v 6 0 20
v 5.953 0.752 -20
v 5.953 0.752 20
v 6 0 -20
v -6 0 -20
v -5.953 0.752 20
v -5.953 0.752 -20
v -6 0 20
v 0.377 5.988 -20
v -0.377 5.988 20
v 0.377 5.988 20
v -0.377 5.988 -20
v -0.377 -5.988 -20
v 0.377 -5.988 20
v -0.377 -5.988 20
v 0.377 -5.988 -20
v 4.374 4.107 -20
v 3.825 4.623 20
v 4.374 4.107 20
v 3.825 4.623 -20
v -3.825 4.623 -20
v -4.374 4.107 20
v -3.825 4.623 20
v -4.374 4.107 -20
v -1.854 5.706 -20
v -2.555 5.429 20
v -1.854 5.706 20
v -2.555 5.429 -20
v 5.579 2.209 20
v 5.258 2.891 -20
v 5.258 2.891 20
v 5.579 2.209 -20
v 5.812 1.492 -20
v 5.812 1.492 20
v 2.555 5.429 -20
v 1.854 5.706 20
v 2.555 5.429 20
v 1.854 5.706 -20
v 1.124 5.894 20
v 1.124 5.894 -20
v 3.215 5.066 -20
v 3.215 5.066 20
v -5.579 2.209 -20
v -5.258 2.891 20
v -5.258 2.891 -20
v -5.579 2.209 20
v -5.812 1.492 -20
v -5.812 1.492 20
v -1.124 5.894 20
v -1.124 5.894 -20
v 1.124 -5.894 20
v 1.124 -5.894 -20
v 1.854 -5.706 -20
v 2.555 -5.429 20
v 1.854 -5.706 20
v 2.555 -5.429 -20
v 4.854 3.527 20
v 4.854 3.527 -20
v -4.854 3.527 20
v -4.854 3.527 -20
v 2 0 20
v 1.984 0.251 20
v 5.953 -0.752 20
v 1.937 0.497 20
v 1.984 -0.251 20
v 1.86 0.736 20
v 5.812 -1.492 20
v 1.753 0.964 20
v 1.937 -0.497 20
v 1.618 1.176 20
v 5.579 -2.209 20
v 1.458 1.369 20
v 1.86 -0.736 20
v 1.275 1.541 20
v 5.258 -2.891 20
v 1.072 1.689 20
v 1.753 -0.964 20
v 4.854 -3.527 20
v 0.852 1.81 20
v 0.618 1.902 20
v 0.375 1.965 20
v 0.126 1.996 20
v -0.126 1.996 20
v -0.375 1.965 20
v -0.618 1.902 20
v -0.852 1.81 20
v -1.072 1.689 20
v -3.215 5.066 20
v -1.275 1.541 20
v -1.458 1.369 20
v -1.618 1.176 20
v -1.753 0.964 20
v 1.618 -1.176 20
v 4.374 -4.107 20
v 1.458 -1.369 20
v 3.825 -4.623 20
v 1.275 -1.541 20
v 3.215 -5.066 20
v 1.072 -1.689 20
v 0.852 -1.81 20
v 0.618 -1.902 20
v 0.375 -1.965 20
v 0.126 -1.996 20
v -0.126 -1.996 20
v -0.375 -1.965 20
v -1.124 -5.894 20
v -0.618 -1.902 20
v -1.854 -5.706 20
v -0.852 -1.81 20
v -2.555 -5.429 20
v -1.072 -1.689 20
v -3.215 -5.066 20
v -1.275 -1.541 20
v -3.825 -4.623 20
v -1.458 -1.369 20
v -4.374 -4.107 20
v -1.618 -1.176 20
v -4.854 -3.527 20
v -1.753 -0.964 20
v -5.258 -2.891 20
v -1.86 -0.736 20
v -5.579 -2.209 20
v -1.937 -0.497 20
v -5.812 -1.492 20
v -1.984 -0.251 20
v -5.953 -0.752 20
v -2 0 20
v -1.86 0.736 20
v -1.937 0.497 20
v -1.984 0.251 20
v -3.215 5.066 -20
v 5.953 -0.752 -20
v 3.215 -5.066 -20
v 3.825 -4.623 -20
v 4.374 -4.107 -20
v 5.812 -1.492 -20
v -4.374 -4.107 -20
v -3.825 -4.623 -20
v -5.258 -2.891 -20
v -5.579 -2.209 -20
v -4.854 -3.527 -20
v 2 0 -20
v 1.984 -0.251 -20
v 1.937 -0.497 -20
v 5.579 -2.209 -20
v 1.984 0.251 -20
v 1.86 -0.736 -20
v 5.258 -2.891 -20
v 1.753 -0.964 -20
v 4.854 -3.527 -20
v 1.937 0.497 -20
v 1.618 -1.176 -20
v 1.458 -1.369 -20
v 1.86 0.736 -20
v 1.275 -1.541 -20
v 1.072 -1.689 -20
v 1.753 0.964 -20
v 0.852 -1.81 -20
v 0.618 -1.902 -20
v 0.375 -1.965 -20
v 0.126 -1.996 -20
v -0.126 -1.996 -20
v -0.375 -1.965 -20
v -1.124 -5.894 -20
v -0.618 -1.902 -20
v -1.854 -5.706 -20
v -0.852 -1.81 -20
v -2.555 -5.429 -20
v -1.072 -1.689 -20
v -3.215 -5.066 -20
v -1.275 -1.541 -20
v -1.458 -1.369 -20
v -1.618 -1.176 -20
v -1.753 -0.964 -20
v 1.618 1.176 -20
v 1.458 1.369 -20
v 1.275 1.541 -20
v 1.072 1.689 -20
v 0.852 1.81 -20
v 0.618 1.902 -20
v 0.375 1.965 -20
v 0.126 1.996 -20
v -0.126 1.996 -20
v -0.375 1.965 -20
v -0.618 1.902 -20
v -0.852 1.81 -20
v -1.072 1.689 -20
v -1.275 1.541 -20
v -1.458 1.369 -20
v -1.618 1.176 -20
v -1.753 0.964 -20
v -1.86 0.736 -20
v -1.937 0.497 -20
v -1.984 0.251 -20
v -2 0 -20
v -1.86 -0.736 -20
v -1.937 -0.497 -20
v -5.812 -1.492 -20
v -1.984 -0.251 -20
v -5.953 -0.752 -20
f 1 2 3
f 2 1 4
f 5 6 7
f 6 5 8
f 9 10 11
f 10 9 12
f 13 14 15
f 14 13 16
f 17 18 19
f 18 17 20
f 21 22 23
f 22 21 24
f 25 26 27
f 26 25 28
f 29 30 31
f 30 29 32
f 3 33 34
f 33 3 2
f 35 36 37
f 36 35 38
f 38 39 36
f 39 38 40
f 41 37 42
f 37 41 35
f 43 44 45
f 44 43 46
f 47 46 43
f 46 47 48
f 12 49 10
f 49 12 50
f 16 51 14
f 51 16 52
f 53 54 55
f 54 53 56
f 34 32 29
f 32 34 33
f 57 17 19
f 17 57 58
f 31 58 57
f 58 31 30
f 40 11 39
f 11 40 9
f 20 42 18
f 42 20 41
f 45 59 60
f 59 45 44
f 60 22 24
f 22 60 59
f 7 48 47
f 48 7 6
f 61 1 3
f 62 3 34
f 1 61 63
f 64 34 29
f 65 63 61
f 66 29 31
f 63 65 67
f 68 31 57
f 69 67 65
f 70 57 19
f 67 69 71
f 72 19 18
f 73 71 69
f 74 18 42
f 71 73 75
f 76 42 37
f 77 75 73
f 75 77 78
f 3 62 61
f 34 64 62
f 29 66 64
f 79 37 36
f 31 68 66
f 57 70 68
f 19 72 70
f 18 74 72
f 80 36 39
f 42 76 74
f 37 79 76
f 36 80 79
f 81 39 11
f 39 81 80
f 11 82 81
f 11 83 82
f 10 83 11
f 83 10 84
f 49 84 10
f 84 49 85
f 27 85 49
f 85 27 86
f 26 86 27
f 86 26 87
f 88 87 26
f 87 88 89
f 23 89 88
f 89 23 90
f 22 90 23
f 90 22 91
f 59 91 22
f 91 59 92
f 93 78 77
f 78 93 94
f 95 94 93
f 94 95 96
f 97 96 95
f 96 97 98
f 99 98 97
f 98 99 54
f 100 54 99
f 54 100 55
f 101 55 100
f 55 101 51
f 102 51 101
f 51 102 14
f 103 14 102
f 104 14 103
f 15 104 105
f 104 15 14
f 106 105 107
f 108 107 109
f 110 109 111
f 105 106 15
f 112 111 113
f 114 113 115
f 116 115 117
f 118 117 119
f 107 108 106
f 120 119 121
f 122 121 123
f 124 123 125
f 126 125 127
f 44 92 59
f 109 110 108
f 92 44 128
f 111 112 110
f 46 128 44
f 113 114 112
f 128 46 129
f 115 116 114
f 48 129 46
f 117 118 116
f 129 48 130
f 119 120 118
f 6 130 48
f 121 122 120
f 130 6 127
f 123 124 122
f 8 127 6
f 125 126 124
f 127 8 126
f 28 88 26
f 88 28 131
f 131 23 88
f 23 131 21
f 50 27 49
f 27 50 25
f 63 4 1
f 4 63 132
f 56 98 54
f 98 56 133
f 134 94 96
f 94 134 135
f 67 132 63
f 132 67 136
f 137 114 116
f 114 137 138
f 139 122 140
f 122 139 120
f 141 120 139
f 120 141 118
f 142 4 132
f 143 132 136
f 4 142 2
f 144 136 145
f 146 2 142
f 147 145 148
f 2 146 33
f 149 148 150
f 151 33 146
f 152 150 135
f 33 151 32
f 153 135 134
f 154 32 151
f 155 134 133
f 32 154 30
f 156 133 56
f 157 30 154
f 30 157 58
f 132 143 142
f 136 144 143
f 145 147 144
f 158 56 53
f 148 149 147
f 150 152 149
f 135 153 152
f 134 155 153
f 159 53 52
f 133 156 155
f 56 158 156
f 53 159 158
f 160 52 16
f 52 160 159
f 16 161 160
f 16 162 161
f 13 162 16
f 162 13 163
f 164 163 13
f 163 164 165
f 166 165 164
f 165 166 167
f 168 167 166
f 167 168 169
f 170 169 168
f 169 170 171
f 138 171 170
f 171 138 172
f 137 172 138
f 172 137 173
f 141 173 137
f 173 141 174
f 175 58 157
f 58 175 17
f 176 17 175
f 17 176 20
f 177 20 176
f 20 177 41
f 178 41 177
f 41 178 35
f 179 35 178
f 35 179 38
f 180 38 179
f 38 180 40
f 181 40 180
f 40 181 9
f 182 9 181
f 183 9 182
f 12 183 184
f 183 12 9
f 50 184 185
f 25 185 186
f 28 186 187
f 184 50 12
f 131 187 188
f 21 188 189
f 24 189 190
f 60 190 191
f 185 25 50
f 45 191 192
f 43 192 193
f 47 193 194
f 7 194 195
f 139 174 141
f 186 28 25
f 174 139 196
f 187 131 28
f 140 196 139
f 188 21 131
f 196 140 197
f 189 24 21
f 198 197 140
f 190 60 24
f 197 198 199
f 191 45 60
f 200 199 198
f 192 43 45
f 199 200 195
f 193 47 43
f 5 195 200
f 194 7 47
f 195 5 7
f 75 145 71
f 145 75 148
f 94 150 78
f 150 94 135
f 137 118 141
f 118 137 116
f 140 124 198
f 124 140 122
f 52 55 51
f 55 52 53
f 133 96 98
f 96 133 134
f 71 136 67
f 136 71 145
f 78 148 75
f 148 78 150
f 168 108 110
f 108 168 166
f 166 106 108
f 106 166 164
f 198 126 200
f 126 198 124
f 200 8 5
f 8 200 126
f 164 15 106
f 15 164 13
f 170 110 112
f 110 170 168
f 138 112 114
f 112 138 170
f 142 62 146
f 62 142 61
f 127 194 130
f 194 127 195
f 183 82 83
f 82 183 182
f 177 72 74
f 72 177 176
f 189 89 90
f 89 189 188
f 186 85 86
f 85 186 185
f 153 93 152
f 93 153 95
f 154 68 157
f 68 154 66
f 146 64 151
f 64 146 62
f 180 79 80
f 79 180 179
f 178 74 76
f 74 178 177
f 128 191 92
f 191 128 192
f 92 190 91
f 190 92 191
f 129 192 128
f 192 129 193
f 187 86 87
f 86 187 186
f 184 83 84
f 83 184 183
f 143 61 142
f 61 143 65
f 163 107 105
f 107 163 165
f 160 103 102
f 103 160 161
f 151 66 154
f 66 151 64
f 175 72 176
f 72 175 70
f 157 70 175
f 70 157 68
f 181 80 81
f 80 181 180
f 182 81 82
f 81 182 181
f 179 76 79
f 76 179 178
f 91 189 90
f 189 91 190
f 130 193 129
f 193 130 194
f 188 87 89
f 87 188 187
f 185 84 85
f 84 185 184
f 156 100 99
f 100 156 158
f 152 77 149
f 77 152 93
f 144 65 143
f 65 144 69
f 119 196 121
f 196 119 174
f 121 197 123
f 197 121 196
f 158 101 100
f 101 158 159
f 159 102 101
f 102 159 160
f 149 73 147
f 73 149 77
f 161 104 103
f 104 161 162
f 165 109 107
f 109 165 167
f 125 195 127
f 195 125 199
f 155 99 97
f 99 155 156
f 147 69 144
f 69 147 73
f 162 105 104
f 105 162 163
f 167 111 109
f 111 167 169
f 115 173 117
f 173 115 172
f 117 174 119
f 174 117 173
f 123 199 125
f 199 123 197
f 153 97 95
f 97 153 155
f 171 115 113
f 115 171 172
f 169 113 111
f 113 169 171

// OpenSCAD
$fn = 50;


difference() {
	union() {
		translate(v = [0, 0, -20.0000000000]) {
			cylinder(h = 40, r = 6.0000000000);
		}
	}
	union() {
		translate(v = [0, 0, -100.0000000000]) {
			cylinder(h = 200, r = 2);
		}
	}
}
